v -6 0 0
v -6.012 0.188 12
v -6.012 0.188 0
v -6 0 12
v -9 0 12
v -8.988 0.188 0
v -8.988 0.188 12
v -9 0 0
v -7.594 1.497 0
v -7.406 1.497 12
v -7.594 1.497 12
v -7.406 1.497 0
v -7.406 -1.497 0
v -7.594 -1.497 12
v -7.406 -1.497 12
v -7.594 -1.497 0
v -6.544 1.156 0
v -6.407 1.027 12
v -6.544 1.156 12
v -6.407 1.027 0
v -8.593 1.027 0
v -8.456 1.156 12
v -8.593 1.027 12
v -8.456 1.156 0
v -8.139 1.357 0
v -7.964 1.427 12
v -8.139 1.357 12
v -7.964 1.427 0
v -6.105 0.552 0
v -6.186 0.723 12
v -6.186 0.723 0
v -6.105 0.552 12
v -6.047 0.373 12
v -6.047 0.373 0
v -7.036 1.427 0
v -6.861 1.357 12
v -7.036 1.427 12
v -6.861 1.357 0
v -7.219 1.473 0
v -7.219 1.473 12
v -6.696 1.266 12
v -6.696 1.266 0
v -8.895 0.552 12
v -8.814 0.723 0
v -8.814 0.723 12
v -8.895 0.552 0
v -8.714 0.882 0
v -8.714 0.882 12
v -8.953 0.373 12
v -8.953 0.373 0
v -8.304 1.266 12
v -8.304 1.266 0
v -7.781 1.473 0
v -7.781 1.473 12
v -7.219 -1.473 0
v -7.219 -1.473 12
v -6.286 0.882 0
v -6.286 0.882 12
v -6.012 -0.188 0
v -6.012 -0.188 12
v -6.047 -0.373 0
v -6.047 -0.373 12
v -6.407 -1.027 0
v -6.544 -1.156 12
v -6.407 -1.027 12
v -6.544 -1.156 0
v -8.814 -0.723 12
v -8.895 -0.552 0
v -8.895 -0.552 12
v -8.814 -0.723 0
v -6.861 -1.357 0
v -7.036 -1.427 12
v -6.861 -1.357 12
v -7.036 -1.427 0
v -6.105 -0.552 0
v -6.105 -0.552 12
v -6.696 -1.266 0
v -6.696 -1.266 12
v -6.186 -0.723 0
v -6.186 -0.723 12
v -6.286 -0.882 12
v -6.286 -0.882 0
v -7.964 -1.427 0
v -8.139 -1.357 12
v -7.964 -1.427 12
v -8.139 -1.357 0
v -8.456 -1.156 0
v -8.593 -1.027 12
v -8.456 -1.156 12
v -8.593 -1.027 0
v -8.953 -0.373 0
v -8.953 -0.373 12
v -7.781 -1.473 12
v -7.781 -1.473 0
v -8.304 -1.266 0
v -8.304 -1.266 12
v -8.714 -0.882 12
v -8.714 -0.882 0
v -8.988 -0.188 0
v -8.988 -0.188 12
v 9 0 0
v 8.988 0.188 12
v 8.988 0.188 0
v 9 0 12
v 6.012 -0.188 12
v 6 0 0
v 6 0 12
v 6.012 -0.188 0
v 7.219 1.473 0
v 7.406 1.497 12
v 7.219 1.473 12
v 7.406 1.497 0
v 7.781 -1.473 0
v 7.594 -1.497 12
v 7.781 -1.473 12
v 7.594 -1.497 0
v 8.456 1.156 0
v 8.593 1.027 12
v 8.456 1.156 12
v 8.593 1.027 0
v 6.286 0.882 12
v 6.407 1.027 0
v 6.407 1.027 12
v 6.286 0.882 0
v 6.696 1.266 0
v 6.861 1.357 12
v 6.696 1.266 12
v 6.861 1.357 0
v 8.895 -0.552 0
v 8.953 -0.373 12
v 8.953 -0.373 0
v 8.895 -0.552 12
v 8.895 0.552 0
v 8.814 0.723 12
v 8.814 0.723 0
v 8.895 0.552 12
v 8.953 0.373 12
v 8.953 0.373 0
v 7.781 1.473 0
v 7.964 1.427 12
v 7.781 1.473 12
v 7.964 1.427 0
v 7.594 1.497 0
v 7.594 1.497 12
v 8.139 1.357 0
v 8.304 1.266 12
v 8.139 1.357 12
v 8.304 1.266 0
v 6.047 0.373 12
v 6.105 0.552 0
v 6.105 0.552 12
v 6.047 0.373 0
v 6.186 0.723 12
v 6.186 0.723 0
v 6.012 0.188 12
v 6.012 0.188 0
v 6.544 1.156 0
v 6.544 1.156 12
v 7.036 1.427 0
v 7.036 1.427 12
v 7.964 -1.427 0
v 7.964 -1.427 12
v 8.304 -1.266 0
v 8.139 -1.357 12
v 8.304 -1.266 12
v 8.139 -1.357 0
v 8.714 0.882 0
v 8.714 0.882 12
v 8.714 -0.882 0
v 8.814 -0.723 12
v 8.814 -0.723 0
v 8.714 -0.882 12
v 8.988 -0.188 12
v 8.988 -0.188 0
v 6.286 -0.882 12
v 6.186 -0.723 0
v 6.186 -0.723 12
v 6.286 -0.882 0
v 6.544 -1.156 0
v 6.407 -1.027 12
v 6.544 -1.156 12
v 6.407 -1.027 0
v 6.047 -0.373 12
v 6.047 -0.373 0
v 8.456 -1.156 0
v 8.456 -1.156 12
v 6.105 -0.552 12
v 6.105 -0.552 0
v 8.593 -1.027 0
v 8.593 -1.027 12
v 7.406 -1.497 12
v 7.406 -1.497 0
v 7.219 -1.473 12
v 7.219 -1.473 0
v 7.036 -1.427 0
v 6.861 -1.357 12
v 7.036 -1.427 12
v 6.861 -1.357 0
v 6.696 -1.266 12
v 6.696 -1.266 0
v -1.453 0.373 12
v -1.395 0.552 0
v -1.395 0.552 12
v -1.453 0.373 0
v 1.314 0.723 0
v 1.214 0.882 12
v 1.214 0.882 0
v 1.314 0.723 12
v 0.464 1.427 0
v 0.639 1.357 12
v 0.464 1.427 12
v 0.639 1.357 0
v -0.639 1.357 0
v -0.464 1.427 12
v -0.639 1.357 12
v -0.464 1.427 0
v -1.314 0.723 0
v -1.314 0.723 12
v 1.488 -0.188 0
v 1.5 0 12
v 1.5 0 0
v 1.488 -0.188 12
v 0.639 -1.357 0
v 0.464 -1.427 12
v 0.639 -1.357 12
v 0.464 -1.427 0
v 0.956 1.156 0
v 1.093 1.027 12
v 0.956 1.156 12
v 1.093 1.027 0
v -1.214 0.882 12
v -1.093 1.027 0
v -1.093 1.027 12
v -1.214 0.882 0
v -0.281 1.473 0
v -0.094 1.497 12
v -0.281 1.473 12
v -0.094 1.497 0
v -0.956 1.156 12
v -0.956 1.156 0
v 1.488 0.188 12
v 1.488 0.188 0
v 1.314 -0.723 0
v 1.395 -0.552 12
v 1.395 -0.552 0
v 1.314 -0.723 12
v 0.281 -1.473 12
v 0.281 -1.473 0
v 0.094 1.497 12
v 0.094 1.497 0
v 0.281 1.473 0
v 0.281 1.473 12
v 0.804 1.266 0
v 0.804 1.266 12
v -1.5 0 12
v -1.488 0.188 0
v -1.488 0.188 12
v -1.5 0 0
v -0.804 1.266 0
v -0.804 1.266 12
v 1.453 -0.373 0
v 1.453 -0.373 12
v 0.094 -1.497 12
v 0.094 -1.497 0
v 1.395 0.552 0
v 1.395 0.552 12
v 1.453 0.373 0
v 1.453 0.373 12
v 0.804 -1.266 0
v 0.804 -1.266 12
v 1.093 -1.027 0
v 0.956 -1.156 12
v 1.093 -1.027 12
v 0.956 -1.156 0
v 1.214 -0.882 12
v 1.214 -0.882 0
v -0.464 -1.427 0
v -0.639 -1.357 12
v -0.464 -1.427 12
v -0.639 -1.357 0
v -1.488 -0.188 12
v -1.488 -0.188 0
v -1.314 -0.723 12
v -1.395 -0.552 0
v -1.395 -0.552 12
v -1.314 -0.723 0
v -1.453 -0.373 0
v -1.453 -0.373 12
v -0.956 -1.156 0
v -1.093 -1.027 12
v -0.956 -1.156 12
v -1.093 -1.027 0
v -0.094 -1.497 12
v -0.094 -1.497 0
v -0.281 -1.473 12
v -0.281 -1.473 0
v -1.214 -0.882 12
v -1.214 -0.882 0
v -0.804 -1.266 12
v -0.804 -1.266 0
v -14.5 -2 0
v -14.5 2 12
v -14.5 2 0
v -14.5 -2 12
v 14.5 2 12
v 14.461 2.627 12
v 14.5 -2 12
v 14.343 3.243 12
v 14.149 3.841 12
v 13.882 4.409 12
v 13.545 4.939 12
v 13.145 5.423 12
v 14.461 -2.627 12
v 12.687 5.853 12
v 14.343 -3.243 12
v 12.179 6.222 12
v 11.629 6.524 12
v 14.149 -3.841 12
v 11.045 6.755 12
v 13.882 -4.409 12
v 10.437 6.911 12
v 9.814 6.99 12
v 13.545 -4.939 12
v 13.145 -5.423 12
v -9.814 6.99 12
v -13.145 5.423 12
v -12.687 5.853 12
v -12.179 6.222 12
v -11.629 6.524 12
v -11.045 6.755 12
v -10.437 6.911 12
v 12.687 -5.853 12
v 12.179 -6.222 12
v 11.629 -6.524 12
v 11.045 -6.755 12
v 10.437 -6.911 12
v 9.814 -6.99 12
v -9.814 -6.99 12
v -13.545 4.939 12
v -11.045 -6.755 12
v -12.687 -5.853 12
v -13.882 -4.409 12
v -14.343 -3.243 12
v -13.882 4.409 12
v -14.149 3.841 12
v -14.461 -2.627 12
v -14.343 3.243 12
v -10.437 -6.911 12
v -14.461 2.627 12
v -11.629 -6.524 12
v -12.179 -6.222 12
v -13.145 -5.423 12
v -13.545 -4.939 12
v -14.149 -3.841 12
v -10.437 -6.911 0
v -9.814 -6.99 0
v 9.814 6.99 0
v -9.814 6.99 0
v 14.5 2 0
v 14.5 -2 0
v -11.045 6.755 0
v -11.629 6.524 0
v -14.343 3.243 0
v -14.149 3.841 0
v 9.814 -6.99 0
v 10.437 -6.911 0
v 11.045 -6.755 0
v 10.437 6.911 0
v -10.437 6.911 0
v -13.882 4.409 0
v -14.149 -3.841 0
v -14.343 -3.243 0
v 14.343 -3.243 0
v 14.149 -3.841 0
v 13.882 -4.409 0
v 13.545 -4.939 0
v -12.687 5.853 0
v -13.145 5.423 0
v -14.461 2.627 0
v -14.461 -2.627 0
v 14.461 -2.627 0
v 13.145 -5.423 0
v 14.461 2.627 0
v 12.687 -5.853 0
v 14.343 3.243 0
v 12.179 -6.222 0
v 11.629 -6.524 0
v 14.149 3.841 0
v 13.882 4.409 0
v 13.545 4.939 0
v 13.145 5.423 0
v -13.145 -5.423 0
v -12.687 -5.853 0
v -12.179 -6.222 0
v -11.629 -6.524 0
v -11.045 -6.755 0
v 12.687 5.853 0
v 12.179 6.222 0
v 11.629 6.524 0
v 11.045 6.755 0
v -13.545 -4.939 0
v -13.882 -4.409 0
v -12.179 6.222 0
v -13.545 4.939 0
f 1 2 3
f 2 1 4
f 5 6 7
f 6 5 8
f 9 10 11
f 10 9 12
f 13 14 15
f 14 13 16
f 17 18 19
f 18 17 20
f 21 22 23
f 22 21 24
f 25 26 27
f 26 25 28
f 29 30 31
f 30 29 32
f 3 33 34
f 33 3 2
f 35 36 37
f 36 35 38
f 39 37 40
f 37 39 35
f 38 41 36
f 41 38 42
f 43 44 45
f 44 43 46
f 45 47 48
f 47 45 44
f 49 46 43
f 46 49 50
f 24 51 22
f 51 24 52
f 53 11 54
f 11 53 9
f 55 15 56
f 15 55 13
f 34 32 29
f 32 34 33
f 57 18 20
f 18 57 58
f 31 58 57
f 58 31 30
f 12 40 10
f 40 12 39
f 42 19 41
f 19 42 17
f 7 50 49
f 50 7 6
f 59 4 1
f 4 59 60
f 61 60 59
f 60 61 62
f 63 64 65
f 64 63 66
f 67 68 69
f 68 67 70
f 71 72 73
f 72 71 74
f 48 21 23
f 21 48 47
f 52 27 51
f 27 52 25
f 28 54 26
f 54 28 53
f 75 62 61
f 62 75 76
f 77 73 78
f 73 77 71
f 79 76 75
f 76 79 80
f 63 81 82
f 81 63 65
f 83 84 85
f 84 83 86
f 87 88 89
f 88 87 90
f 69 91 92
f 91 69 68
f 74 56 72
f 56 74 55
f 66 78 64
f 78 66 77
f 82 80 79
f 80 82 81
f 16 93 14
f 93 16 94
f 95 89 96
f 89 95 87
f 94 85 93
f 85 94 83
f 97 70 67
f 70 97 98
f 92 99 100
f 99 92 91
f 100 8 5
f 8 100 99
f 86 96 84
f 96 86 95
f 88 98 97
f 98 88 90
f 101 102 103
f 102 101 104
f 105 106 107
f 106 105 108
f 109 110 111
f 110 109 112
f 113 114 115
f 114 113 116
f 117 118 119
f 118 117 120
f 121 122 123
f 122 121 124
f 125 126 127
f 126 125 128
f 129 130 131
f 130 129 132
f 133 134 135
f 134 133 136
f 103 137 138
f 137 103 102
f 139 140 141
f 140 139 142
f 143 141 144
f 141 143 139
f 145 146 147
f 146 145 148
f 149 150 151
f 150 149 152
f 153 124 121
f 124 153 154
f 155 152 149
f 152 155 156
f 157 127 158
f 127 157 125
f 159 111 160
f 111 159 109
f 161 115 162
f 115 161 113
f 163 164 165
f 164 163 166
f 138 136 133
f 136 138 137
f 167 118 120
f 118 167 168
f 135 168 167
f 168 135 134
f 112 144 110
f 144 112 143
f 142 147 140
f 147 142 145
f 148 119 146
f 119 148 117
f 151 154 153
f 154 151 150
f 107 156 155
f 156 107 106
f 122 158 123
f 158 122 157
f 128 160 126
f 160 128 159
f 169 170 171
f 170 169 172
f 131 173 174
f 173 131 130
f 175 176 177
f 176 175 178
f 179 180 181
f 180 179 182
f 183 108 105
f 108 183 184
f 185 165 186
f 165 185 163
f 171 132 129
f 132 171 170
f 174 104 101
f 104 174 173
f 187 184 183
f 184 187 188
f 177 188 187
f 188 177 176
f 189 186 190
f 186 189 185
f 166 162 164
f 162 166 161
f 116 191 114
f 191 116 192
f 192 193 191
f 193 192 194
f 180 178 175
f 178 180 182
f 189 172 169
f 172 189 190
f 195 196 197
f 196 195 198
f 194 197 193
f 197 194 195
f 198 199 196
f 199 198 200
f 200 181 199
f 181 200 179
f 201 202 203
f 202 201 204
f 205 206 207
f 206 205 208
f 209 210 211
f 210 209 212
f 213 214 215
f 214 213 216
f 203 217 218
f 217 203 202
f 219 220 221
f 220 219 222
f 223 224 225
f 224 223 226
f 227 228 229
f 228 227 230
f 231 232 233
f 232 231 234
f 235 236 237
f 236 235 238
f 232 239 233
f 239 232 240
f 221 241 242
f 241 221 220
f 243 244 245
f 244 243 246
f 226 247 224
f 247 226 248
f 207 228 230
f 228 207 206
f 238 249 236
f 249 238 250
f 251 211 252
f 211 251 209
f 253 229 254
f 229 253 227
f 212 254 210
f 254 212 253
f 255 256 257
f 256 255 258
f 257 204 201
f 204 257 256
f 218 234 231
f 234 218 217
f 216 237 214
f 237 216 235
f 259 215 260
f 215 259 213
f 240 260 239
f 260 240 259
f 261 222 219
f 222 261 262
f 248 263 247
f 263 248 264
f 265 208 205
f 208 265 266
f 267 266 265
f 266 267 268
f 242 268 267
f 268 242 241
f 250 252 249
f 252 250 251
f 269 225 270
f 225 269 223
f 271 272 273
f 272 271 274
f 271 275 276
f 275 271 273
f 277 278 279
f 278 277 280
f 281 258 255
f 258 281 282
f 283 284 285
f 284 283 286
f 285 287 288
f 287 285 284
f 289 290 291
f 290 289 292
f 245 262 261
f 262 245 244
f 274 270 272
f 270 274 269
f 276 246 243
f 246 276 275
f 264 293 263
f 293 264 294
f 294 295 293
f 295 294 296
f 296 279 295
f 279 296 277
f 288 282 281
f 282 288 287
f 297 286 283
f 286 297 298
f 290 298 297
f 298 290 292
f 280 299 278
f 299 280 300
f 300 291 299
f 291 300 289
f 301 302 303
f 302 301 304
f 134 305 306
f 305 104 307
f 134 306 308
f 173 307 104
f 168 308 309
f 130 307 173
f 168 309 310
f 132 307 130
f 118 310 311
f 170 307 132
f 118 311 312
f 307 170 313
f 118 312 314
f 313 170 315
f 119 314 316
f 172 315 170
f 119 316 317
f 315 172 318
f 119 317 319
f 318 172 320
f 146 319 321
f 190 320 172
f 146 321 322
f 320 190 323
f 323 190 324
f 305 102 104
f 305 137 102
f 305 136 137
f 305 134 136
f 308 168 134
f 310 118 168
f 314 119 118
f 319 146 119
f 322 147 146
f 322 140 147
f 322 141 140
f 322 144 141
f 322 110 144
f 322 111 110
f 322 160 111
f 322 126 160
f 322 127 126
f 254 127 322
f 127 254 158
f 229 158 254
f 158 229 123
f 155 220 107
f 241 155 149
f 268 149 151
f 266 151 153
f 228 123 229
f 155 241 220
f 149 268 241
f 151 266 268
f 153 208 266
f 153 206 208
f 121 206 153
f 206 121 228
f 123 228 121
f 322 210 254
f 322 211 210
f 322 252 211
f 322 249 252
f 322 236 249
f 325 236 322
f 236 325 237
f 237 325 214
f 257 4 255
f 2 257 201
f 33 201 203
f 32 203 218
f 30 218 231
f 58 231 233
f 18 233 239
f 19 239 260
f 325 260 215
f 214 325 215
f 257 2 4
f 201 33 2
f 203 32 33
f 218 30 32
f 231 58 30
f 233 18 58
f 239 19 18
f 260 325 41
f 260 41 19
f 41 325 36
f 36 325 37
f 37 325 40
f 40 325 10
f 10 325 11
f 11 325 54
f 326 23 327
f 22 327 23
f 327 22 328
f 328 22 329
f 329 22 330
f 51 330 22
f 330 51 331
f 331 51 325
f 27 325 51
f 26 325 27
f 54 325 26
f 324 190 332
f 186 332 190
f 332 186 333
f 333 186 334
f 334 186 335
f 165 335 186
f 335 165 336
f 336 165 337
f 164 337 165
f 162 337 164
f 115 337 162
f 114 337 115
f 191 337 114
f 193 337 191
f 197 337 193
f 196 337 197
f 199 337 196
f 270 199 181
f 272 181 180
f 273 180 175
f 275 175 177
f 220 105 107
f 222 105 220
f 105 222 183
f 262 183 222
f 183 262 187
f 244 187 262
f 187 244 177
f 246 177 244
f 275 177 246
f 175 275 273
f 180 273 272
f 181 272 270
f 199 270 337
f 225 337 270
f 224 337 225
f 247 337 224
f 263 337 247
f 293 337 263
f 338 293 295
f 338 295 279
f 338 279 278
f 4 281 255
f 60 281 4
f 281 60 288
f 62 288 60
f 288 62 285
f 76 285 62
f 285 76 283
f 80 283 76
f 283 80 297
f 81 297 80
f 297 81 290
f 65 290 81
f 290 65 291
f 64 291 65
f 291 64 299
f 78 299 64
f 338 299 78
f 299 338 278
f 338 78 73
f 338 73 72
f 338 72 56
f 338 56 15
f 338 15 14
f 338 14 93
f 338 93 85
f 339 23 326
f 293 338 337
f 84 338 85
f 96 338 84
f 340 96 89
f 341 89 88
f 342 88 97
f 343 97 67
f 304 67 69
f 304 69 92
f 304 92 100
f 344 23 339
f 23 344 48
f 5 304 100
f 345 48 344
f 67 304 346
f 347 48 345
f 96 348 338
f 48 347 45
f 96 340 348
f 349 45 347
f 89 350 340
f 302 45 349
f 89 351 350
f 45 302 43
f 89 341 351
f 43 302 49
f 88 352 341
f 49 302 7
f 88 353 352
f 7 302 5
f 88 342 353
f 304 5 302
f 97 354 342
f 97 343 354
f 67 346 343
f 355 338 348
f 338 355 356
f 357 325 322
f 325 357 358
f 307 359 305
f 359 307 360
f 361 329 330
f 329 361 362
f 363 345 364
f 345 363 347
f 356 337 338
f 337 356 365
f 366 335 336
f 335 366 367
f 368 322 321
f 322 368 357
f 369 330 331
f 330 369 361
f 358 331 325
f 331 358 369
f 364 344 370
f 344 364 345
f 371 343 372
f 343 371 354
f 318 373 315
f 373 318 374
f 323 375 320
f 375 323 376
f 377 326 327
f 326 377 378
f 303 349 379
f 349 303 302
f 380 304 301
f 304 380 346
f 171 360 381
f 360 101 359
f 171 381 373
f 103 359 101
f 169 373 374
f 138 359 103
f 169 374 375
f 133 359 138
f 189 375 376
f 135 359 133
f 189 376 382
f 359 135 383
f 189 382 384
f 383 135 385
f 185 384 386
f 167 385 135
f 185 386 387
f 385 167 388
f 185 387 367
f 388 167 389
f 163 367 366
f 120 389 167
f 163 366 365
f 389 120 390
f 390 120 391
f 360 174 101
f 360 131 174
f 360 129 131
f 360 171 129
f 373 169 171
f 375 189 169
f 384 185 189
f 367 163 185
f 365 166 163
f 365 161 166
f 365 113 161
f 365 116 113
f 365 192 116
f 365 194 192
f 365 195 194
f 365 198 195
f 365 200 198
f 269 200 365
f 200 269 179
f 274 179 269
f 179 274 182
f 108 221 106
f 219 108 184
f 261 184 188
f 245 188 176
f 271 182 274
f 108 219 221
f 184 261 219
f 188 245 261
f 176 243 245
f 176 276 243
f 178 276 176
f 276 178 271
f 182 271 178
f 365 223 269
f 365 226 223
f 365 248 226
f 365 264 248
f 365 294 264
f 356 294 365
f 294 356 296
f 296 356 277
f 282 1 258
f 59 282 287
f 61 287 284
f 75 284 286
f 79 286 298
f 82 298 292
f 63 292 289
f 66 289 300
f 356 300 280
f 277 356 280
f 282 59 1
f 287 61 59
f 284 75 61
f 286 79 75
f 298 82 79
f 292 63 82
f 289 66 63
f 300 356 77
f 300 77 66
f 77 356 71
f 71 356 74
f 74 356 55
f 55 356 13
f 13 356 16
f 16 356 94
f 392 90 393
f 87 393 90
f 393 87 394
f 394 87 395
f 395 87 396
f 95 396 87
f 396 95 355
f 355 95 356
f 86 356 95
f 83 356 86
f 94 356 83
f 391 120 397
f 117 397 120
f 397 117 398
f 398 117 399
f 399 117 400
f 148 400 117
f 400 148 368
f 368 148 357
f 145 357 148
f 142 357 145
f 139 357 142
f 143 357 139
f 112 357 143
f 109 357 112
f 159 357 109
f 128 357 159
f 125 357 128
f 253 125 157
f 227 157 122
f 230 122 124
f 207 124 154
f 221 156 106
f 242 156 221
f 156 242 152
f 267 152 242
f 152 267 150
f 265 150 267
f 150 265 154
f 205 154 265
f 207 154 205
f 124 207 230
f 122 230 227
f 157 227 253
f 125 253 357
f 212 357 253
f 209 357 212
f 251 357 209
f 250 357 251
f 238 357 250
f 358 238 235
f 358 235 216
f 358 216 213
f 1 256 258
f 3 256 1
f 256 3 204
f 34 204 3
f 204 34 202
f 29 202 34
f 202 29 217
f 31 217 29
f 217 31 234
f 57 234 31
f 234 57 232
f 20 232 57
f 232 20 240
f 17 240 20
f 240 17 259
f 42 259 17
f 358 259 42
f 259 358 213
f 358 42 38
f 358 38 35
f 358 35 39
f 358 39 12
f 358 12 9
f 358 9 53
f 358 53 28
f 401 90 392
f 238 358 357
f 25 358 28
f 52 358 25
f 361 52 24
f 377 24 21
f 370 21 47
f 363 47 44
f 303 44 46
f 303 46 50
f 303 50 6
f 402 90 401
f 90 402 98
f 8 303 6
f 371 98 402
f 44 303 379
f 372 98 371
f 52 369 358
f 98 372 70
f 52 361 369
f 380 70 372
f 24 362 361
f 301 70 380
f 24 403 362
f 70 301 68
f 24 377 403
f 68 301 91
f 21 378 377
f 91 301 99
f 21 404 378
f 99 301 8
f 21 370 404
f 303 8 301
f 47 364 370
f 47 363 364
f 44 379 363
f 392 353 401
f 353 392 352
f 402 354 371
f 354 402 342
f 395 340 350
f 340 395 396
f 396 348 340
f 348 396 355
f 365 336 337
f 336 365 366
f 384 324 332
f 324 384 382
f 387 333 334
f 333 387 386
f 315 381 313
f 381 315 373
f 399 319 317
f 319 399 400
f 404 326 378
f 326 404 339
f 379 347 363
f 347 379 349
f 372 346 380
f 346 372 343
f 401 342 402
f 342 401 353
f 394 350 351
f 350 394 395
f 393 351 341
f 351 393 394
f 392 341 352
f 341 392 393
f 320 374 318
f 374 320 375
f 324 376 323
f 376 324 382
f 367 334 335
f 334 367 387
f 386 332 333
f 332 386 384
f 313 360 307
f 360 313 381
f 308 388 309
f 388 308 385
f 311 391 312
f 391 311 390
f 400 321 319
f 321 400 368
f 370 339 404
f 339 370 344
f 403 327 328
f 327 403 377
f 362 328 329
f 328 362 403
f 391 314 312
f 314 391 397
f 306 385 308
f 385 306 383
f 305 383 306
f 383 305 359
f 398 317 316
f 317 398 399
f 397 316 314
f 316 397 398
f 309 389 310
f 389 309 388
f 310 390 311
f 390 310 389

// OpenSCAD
$fn = 50;


difference() {
	union() {
		hull() {
			translate(v = [-9.5000000000, 2.0000000000, 0]) {
				cylinder(h = 12, r = 5);
			}
			translate(v = [9.5000000000, 2.0000000000, 0]) {
				cylinder(h = 12, r = 5);
			}
			translate(v = [-9.5000000000, -2.0000000000, 0]) {
				cylinder(h = 12, r = 5);
			}
			translate(v = [9.5000000000, -2.0000000000, 0]) {
				cylinder(h = 12, r = 5);
			}
		}
	}
	union() {
		translate(v = [-7.5000000000, 0.0000000000, 0]) {
			translate(v = [0, 0, -100]) {
				cylinder(h = 200, r = 1.5000000000);
			}
		}
		translate(v = [7.5000000000, 0.0000000000, 0]) {
			translate(v = [0, 0, -100]) {
				cylinder(h = 200, r = 1.5000000000);
			}
		}
		translate(v = [-7.5000000000, 0.0000000000, 0]) {
			translate(v = [0, 0, -100]) {
				cylinder(h = 200, r = 1.5000000000);
			}
		}
		translate(v = [0, 0, -100]) {
			cylinder(h = 200, r = 1.5000000000);
		}
		translate(v = [7.5000000000, 0.0000000000, 0]) {
			translate(v = [0, 0, -100]) {
				cylinder(h = 200, r = 1.5000000000);
			}
		}
	}
}
